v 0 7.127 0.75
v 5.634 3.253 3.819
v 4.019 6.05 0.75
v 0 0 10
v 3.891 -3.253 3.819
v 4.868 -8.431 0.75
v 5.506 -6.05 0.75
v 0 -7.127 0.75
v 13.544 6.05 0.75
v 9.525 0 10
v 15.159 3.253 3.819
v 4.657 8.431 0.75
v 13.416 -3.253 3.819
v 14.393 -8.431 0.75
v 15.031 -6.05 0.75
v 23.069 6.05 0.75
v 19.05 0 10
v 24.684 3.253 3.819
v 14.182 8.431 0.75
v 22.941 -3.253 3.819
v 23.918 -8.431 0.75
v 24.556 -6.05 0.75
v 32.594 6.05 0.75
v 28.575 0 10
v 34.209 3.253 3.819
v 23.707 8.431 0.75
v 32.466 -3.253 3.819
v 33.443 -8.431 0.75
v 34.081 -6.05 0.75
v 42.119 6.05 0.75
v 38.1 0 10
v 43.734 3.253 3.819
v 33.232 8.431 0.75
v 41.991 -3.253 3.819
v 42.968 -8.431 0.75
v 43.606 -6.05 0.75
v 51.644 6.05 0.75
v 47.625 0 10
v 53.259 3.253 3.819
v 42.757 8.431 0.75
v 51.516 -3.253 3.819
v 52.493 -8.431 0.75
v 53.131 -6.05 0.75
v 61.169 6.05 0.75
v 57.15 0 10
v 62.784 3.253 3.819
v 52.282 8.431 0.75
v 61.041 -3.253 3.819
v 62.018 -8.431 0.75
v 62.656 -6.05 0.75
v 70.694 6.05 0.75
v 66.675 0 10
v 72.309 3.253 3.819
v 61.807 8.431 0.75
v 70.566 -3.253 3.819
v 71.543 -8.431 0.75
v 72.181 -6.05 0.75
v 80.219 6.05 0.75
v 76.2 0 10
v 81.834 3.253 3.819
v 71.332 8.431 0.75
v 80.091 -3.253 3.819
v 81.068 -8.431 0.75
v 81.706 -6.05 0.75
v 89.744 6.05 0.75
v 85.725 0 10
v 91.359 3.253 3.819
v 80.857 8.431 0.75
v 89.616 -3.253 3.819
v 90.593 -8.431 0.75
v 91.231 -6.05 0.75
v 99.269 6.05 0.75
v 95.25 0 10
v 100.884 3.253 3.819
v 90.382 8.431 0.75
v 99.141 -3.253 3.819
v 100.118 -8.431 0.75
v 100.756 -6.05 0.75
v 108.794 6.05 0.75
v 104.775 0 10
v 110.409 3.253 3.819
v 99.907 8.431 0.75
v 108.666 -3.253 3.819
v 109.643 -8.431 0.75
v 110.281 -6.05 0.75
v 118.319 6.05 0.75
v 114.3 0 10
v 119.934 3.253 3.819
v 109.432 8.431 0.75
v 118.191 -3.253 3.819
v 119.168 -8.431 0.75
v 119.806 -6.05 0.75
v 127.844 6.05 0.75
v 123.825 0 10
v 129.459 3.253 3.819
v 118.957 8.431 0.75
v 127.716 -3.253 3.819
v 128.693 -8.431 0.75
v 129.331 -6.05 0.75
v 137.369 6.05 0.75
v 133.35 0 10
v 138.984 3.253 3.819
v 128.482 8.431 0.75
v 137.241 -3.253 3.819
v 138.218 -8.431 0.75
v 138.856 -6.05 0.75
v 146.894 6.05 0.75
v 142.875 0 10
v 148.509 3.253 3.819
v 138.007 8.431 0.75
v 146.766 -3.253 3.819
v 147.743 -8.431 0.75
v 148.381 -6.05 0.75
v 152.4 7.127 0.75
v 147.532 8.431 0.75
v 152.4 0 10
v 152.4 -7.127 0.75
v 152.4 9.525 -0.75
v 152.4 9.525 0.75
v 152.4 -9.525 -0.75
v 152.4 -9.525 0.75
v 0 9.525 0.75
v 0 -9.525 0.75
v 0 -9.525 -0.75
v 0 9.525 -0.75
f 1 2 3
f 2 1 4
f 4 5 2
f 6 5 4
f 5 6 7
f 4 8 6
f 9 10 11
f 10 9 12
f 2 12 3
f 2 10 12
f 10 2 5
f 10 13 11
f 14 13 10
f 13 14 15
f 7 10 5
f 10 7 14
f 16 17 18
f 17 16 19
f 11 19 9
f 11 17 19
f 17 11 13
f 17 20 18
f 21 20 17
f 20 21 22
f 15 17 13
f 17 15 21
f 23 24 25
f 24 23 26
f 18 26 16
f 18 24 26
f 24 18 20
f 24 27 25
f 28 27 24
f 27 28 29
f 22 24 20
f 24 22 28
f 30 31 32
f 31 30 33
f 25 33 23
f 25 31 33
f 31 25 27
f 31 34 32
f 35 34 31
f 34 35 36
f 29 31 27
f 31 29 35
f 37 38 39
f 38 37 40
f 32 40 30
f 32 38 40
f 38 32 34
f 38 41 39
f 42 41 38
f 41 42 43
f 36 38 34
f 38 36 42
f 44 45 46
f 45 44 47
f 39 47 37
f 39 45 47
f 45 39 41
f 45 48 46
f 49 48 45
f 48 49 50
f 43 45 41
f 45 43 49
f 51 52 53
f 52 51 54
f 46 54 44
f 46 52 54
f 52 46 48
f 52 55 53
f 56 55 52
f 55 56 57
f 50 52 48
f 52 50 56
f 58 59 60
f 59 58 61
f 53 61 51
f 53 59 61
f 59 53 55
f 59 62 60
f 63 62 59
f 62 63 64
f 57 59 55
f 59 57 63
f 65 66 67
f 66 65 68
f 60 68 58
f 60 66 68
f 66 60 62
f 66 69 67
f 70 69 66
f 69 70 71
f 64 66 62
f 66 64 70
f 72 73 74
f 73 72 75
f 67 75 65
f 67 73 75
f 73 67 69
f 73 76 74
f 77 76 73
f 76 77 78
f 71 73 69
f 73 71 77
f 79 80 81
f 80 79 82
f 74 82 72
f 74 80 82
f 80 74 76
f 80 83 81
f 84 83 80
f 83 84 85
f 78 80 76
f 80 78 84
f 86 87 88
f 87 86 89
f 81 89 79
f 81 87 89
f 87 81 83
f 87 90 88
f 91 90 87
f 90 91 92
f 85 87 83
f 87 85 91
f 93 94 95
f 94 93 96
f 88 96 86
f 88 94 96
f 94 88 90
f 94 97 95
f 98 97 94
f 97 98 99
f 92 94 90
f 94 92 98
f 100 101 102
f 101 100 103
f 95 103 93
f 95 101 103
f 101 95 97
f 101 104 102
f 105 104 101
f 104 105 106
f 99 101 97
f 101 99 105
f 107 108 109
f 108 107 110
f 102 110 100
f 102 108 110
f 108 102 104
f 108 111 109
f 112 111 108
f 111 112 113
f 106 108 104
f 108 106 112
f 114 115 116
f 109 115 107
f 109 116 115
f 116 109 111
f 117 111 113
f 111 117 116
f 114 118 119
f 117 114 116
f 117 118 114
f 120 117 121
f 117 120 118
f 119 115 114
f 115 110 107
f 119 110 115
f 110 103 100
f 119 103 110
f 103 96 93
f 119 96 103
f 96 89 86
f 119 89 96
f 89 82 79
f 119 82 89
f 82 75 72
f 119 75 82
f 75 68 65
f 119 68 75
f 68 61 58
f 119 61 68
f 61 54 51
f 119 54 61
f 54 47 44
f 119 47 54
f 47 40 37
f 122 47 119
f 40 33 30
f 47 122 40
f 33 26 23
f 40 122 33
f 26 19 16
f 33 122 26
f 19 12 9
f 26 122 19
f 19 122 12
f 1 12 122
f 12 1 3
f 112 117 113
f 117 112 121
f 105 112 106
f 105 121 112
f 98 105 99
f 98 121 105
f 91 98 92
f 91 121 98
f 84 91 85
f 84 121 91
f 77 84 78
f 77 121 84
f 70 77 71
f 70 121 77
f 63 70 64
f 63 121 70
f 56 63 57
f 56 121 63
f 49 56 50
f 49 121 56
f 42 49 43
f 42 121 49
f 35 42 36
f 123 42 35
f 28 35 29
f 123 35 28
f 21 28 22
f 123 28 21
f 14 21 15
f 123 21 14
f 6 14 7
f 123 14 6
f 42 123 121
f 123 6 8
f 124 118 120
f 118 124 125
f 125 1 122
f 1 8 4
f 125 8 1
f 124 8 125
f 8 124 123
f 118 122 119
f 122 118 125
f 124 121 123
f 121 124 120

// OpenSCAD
$r = 19.05 / 2;
$r2 = 11 / 2;
$d = 1.5;
$fn = 4;
$links = 16;

difference() {
    union() {
for (i = [0:$links]) {
    
     translate([i * $r, 0, 5]) {
        rotate([0, 0, 30]) {
            cylinder(10, $r+1, 0, true);
        }
     }
}
translate([($links)/2 * $r, 0, 0]) {
     cube([$r * ($links ), $r*2 , $d], true);
}
}
translate([-10, 0, 0]) {
    cube([20, 20, 20], true);
}
translate([($links) * $r + 10, 0, 0]) {
    cube([20, 20, 20], true);
}
}
